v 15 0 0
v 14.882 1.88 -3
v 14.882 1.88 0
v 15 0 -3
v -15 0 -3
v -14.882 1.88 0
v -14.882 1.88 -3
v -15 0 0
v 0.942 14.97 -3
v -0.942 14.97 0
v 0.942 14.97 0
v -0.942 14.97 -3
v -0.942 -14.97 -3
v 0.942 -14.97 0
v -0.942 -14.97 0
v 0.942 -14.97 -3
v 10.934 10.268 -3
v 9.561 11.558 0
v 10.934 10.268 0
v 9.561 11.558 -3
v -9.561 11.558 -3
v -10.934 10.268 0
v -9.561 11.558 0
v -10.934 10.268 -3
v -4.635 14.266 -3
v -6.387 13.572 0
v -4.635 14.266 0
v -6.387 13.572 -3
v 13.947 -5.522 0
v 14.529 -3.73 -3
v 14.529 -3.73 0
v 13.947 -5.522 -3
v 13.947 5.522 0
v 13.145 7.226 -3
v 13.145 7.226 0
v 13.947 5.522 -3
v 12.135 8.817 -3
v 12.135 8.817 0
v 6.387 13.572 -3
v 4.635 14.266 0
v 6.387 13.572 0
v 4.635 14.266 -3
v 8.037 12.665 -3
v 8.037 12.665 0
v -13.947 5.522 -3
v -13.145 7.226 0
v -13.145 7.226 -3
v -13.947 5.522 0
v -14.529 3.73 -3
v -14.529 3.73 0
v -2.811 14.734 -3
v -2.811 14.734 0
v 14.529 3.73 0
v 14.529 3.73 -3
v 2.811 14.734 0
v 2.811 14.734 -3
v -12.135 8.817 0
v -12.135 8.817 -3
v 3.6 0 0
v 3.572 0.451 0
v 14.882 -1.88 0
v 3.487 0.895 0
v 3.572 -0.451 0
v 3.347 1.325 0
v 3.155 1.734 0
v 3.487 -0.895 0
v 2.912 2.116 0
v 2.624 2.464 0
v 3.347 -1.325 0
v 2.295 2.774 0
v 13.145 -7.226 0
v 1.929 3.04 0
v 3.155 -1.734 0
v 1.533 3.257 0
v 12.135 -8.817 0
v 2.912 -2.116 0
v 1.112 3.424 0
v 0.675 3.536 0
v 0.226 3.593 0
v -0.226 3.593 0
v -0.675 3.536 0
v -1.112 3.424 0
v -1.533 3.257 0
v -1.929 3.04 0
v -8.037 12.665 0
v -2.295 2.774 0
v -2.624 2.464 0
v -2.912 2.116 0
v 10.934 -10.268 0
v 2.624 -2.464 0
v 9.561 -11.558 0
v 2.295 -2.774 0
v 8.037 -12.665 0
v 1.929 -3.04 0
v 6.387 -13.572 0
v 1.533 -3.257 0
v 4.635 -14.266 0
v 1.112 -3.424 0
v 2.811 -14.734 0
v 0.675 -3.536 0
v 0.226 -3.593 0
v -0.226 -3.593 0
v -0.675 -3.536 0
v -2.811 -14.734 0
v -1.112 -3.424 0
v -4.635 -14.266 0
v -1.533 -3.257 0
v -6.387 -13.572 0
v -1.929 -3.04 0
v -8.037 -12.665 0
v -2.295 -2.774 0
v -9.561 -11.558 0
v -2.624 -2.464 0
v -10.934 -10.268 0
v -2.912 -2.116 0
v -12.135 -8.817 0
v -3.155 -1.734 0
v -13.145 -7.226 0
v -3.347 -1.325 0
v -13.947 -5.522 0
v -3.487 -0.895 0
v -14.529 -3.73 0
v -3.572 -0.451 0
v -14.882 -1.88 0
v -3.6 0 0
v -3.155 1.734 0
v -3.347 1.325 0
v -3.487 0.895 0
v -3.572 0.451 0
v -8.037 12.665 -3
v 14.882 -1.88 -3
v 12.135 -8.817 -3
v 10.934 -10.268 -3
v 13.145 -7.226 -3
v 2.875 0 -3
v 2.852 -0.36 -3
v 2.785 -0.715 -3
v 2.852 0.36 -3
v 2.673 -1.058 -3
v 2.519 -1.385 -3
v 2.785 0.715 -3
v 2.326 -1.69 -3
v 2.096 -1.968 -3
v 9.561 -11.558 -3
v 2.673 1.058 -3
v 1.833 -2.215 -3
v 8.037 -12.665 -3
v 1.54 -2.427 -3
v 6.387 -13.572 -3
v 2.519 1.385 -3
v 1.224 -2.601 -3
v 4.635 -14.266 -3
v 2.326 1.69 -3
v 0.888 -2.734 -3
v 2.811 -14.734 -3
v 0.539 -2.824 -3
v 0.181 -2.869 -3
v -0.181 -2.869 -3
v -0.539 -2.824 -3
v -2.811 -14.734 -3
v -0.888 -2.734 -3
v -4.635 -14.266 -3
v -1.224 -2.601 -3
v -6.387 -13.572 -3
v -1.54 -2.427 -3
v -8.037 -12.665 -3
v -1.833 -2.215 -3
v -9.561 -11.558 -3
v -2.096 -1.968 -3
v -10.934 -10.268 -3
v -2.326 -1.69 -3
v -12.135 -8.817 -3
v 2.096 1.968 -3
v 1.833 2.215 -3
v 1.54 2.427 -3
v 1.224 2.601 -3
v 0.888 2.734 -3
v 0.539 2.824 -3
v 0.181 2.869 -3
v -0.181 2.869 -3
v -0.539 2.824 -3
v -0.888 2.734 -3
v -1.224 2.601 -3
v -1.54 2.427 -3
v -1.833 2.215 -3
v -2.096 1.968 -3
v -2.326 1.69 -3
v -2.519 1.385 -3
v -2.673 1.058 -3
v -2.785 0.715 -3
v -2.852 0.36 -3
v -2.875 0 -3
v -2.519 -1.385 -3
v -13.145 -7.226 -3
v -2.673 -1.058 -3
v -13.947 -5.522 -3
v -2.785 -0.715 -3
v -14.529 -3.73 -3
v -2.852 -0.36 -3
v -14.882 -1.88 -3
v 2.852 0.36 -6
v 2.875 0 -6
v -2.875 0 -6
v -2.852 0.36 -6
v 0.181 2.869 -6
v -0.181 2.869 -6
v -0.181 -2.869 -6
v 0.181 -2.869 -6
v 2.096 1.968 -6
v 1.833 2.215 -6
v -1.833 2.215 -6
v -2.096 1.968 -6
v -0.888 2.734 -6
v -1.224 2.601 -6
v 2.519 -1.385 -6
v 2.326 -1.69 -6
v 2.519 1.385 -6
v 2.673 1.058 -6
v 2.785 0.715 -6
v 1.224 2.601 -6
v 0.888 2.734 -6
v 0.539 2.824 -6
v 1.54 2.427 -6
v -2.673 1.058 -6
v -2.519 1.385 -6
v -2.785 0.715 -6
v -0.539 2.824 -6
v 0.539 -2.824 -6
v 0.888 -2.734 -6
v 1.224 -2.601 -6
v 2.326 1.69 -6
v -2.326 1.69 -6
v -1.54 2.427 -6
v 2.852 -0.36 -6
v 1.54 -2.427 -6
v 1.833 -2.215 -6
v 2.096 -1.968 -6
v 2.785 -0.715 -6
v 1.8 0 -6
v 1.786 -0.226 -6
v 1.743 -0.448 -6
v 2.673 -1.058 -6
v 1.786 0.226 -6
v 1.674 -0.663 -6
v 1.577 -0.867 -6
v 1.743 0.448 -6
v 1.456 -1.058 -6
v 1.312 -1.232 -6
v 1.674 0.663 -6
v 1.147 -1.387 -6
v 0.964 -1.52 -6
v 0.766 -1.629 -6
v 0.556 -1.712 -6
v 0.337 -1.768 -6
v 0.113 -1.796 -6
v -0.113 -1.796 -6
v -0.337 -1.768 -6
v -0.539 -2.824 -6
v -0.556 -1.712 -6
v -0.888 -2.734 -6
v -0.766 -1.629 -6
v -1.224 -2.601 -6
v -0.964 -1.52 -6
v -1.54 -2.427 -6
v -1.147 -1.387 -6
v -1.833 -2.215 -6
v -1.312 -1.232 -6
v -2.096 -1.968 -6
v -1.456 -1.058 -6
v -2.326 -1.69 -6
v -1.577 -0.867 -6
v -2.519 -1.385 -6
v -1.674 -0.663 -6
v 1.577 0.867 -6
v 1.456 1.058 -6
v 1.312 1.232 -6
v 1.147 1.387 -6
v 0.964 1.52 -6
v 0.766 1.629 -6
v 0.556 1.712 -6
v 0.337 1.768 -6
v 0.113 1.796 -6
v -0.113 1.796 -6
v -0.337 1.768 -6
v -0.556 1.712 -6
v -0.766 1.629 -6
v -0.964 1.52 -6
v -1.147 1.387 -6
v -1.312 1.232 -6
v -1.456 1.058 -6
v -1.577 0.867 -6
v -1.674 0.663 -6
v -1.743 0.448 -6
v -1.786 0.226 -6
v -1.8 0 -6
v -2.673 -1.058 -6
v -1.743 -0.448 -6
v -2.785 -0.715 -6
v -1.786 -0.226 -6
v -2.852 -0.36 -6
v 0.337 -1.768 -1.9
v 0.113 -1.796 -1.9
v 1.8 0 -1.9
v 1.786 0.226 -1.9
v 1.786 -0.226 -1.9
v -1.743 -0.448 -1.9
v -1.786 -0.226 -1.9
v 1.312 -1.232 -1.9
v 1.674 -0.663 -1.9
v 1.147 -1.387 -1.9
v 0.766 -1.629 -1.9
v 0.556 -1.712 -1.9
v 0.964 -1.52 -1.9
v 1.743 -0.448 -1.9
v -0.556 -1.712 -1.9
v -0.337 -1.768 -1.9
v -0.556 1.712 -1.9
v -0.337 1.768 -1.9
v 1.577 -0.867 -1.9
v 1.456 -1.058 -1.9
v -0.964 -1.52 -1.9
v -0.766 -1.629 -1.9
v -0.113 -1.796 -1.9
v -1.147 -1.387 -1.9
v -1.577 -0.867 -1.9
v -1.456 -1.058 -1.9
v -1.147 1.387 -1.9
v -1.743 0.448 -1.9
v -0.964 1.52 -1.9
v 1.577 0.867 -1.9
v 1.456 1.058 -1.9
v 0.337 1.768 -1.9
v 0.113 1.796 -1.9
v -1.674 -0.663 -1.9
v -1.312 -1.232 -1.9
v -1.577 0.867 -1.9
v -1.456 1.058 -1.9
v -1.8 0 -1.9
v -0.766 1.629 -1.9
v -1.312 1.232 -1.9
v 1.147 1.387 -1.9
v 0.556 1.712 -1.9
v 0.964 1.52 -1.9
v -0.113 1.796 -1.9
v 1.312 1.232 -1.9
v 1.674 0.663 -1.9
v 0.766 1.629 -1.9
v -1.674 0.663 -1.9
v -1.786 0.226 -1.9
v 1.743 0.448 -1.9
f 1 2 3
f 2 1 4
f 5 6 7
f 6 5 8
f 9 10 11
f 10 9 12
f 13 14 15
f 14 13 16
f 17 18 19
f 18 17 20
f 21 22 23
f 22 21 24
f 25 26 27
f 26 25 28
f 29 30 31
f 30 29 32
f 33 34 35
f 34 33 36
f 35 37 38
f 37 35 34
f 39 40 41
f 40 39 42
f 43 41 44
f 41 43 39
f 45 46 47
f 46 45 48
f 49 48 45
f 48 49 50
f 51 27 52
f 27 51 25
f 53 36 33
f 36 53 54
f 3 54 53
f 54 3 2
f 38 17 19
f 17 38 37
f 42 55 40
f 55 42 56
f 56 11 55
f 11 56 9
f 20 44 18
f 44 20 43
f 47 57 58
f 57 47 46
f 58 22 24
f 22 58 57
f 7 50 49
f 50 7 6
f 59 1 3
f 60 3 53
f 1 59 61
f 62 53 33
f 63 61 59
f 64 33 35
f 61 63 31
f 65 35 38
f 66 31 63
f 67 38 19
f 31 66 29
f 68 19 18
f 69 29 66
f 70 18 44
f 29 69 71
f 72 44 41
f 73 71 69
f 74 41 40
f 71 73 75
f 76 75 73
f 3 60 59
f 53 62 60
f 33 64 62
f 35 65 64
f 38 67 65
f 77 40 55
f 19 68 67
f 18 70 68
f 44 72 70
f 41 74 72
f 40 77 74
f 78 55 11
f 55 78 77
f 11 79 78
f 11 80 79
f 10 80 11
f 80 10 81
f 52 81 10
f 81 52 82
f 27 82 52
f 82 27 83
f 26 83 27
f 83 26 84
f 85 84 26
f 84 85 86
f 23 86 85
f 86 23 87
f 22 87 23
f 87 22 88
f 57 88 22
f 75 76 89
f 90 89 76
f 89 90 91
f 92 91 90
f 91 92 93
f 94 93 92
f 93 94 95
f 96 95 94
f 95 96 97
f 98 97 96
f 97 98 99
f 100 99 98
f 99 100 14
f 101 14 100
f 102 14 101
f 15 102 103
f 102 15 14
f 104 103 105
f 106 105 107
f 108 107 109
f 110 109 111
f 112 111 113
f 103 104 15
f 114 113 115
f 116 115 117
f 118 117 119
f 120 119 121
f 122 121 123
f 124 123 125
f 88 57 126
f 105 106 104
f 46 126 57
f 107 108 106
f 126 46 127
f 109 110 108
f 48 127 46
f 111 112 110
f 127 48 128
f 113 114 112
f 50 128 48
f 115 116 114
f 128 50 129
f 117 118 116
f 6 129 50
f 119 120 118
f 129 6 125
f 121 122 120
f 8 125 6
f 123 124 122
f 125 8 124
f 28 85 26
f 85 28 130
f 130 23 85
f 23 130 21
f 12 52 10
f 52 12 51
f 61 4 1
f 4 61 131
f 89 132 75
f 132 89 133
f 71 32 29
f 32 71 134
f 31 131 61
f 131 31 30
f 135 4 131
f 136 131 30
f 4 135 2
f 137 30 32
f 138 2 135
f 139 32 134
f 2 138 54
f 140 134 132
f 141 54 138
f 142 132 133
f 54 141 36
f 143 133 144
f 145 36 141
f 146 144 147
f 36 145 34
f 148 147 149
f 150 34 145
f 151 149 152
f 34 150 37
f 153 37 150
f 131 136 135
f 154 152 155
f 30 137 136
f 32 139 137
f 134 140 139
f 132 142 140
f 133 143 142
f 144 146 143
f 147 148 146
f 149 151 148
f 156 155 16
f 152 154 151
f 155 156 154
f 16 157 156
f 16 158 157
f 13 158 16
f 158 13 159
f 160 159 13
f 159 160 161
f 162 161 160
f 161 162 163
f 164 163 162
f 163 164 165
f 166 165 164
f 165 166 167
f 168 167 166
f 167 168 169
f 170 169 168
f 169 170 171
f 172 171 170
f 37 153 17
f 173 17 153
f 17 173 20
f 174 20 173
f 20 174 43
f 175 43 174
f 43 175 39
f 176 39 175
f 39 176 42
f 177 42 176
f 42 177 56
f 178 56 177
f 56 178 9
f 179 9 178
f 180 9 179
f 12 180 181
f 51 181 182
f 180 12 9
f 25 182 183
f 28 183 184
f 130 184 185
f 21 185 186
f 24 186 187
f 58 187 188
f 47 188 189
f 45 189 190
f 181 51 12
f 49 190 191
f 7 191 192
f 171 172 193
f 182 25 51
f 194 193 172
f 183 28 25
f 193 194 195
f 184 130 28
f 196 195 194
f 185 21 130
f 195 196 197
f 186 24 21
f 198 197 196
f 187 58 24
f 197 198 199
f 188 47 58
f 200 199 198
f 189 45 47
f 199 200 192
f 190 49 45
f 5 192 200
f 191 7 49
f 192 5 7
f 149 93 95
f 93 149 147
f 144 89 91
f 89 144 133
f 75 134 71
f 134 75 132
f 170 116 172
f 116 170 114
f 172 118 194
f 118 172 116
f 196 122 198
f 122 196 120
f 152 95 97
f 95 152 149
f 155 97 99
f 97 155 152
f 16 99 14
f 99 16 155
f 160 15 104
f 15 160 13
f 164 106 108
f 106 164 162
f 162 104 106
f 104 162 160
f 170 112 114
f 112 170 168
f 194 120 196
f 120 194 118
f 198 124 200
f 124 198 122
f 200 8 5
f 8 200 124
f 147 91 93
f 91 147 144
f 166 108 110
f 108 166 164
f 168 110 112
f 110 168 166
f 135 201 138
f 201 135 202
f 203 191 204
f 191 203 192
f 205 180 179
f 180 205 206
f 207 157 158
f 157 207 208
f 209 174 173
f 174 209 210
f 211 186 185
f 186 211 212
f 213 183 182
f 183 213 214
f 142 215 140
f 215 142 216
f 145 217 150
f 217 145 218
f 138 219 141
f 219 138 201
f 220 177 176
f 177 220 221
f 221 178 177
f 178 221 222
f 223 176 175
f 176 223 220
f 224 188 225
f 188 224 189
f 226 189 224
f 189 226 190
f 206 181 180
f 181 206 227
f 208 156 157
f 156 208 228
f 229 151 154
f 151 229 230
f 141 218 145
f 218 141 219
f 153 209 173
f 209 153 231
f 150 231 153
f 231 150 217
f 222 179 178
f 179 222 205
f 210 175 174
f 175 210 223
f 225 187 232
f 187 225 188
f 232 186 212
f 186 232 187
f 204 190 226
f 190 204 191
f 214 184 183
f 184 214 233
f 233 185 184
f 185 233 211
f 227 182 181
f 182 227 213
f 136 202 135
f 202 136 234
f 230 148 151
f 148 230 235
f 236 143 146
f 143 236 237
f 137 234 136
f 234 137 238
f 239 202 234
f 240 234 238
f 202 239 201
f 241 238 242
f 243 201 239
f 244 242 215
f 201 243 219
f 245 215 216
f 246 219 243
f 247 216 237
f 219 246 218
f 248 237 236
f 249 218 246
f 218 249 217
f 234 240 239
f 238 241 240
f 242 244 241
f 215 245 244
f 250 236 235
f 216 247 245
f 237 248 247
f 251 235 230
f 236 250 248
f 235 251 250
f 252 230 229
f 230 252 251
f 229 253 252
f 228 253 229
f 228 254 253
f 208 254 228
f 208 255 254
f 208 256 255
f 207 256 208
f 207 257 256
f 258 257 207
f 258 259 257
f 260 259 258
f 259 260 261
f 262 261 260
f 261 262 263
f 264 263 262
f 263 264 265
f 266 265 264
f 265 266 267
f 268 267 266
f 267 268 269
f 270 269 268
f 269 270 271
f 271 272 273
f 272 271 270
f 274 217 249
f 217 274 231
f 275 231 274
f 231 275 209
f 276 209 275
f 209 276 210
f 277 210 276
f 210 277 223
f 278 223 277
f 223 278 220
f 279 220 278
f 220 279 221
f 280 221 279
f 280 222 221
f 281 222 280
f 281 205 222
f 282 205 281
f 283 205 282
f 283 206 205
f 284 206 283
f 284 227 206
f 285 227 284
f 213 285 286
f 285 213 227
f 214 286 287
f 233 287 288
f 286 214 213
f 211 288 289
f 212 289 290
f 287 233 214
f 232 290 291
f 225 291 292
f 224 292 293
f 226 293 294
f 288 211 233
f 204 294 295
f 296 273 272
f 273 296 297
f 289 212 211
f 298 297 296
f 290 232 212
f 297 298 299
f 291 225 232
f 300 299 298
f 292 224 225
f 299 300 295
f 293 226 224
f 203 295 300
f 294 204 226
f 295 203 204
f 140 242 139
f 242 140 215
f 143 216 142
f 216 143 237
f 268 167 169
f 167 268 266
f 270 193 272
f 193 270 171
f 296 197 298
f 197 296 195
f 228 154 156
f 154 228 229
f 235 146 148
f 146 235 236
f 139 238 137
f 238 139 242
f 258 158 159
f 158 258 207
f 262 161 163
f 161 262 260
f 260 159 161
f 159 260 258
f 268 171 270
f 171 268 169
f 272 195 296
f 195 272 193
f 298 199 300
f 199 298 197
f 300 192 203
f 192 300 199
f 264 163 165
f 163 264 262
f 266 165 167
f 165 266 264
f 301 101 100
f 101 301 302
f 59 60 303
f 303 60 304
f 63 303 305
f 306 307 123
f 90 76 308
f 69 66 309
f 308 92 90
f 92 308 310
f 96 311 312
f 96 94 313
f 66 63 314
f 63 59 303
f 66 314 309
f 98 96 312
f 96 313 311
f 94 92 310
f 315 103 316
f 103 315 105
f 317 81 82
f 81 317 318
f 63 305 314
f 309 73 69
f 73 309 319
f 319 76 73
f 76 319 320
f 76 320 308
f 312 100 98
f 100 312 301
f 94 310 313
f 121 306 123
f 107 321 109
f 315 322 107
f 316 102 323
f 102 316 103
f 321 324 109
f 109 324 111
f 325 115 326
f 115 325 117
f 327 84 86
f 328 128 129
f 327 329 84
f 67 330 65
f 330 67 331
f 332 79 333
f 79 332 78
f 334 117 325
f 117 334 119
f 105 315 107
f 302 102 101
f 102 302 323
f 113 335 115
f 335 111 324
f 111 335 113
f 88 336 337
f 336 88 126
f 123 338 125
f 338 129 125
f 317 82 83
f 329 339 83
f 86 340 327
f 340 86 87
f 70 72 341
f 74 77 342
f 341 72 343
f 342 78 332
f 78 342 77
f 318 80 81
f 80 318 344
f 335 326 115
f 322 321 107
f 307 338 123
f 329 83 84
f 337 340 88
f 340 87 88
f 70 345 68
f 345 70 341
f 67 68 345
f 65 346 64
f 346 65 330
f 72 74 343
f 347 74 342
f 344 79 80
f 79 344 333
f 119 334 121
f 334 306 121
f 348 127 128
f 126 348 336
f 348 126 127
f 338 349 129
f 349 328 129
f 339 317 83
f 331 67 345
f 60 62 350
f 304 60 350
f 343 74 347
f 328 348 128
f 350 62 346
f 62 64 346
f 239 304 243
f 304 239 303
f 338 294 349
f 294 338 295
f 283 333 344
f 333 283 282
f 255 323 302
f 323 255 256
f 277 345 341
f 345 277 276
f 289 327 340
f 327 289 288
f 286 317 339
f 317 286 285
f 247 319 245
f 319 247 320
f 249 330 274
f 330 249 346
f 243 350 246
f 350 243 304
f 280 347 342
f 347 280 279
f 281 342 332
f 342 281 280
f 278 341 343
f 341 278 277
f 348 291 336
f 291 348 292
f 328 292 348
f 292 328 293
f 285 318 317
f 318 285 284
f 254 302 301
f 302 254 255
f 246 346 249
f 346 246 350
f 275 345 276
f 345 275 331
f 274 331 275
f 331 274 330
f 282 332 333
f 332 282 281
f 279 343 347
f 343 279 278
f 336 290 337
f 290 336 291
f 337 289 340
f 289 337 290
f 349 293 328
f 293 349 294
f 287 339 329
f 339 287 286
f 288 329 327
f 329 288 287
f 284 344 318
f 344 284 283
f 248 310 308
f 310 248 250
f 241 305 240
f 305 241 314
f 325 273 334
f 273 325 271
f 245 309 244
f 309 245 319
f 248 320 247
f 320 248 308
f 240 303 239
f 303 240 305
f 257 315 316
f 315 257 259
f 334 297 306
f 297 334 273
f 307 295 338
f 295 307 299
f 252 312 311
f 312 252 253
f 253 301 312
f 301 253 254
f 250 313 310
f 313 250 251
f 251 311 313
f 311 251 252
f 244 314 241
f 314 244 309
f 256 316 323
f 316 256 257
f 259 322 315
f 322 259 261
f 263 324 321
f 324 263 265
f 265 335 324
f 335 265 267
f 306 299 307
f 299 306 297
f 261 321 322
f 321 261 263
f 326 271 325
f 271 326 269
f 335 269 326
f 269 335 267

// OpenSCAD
$fn = 50;


difference() {
	union() {
		translate(v = [0, 0, -3.0000000000]) {
			cylinder(h = 3, r = 15.0000000000);
		}
		translate(v = [0, 0, -6.0000000000]) {
			cylinder(h = 6, r = 2.8750000000);
		}
	}
	union() {
		translate(v = [0, 0, 0]) {
			rotate(a = [0, 0, 0]) {
				difference() {
					union() {
						translate(v = [0, 0, -6.0000000000]) {
							cylinder(h = 6, r = 1.5000000000);
						}
						translate(v = [0, 0, -1.9000000000]) {
							cylinder(h = 1.9000000000, r1 = 1.8000000000, r2 = 3.6000000000);
						}
						translate(v = [0, 0, -6.0000000000]) {
							cylinder(h = 6, r = 1.8000000000);
						}
						translate(v = [0, 0, -6.0000000000]) {
							cylinder(h = 6, r = 1.5000000000);
						}
					}
					union();
				}
			}
		}
	}
}
